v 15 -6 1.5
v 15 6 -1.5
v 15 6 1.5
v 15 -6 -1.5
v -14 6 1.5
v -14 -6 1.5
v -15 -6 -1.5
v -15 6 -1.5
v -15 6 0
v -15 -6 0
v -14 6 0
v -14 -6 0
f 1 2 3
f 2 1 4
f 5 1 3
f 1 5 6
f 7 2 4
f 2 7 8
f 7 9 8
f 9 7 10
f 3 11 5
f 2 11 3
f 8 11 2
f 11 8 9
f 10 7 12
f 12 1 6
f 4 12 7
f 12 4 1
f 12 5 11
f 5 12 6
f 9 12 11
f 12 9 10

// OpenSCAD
// Parameters for key component dimensions
key_length = 30;  // Total length of the key
key_width = 12;   // Width of the key
key_thickness = 3; // Reduced thickness of the key
sharp_edge_cut = 0.5; // Cutting depth for sharper edges
key_alignment_offset = -1; // Adjustment for perfect alignment

module key() {
    difference() {
        // Create the base shape of the key with sharp edges
        resize([key_length, key_width, key_thickness]) 
            cube([key_length, key_width, key_thickness], center = true);

        // Refine edges by cutting small corners for sharpness
        translate([-key_length / 2 + sharp_edge_cut, 0, key_thickness / 2])
            cube([sharp_edge_cut * 2, key_width, key_thickness], center = true);

        // Adjust position for proper alignment
        translate([0, 0, key_alignment_offset])
            square([key_width - 2, 2], center = true);
    }
}

// Render the key
translate([0, 0, 0]) key();
